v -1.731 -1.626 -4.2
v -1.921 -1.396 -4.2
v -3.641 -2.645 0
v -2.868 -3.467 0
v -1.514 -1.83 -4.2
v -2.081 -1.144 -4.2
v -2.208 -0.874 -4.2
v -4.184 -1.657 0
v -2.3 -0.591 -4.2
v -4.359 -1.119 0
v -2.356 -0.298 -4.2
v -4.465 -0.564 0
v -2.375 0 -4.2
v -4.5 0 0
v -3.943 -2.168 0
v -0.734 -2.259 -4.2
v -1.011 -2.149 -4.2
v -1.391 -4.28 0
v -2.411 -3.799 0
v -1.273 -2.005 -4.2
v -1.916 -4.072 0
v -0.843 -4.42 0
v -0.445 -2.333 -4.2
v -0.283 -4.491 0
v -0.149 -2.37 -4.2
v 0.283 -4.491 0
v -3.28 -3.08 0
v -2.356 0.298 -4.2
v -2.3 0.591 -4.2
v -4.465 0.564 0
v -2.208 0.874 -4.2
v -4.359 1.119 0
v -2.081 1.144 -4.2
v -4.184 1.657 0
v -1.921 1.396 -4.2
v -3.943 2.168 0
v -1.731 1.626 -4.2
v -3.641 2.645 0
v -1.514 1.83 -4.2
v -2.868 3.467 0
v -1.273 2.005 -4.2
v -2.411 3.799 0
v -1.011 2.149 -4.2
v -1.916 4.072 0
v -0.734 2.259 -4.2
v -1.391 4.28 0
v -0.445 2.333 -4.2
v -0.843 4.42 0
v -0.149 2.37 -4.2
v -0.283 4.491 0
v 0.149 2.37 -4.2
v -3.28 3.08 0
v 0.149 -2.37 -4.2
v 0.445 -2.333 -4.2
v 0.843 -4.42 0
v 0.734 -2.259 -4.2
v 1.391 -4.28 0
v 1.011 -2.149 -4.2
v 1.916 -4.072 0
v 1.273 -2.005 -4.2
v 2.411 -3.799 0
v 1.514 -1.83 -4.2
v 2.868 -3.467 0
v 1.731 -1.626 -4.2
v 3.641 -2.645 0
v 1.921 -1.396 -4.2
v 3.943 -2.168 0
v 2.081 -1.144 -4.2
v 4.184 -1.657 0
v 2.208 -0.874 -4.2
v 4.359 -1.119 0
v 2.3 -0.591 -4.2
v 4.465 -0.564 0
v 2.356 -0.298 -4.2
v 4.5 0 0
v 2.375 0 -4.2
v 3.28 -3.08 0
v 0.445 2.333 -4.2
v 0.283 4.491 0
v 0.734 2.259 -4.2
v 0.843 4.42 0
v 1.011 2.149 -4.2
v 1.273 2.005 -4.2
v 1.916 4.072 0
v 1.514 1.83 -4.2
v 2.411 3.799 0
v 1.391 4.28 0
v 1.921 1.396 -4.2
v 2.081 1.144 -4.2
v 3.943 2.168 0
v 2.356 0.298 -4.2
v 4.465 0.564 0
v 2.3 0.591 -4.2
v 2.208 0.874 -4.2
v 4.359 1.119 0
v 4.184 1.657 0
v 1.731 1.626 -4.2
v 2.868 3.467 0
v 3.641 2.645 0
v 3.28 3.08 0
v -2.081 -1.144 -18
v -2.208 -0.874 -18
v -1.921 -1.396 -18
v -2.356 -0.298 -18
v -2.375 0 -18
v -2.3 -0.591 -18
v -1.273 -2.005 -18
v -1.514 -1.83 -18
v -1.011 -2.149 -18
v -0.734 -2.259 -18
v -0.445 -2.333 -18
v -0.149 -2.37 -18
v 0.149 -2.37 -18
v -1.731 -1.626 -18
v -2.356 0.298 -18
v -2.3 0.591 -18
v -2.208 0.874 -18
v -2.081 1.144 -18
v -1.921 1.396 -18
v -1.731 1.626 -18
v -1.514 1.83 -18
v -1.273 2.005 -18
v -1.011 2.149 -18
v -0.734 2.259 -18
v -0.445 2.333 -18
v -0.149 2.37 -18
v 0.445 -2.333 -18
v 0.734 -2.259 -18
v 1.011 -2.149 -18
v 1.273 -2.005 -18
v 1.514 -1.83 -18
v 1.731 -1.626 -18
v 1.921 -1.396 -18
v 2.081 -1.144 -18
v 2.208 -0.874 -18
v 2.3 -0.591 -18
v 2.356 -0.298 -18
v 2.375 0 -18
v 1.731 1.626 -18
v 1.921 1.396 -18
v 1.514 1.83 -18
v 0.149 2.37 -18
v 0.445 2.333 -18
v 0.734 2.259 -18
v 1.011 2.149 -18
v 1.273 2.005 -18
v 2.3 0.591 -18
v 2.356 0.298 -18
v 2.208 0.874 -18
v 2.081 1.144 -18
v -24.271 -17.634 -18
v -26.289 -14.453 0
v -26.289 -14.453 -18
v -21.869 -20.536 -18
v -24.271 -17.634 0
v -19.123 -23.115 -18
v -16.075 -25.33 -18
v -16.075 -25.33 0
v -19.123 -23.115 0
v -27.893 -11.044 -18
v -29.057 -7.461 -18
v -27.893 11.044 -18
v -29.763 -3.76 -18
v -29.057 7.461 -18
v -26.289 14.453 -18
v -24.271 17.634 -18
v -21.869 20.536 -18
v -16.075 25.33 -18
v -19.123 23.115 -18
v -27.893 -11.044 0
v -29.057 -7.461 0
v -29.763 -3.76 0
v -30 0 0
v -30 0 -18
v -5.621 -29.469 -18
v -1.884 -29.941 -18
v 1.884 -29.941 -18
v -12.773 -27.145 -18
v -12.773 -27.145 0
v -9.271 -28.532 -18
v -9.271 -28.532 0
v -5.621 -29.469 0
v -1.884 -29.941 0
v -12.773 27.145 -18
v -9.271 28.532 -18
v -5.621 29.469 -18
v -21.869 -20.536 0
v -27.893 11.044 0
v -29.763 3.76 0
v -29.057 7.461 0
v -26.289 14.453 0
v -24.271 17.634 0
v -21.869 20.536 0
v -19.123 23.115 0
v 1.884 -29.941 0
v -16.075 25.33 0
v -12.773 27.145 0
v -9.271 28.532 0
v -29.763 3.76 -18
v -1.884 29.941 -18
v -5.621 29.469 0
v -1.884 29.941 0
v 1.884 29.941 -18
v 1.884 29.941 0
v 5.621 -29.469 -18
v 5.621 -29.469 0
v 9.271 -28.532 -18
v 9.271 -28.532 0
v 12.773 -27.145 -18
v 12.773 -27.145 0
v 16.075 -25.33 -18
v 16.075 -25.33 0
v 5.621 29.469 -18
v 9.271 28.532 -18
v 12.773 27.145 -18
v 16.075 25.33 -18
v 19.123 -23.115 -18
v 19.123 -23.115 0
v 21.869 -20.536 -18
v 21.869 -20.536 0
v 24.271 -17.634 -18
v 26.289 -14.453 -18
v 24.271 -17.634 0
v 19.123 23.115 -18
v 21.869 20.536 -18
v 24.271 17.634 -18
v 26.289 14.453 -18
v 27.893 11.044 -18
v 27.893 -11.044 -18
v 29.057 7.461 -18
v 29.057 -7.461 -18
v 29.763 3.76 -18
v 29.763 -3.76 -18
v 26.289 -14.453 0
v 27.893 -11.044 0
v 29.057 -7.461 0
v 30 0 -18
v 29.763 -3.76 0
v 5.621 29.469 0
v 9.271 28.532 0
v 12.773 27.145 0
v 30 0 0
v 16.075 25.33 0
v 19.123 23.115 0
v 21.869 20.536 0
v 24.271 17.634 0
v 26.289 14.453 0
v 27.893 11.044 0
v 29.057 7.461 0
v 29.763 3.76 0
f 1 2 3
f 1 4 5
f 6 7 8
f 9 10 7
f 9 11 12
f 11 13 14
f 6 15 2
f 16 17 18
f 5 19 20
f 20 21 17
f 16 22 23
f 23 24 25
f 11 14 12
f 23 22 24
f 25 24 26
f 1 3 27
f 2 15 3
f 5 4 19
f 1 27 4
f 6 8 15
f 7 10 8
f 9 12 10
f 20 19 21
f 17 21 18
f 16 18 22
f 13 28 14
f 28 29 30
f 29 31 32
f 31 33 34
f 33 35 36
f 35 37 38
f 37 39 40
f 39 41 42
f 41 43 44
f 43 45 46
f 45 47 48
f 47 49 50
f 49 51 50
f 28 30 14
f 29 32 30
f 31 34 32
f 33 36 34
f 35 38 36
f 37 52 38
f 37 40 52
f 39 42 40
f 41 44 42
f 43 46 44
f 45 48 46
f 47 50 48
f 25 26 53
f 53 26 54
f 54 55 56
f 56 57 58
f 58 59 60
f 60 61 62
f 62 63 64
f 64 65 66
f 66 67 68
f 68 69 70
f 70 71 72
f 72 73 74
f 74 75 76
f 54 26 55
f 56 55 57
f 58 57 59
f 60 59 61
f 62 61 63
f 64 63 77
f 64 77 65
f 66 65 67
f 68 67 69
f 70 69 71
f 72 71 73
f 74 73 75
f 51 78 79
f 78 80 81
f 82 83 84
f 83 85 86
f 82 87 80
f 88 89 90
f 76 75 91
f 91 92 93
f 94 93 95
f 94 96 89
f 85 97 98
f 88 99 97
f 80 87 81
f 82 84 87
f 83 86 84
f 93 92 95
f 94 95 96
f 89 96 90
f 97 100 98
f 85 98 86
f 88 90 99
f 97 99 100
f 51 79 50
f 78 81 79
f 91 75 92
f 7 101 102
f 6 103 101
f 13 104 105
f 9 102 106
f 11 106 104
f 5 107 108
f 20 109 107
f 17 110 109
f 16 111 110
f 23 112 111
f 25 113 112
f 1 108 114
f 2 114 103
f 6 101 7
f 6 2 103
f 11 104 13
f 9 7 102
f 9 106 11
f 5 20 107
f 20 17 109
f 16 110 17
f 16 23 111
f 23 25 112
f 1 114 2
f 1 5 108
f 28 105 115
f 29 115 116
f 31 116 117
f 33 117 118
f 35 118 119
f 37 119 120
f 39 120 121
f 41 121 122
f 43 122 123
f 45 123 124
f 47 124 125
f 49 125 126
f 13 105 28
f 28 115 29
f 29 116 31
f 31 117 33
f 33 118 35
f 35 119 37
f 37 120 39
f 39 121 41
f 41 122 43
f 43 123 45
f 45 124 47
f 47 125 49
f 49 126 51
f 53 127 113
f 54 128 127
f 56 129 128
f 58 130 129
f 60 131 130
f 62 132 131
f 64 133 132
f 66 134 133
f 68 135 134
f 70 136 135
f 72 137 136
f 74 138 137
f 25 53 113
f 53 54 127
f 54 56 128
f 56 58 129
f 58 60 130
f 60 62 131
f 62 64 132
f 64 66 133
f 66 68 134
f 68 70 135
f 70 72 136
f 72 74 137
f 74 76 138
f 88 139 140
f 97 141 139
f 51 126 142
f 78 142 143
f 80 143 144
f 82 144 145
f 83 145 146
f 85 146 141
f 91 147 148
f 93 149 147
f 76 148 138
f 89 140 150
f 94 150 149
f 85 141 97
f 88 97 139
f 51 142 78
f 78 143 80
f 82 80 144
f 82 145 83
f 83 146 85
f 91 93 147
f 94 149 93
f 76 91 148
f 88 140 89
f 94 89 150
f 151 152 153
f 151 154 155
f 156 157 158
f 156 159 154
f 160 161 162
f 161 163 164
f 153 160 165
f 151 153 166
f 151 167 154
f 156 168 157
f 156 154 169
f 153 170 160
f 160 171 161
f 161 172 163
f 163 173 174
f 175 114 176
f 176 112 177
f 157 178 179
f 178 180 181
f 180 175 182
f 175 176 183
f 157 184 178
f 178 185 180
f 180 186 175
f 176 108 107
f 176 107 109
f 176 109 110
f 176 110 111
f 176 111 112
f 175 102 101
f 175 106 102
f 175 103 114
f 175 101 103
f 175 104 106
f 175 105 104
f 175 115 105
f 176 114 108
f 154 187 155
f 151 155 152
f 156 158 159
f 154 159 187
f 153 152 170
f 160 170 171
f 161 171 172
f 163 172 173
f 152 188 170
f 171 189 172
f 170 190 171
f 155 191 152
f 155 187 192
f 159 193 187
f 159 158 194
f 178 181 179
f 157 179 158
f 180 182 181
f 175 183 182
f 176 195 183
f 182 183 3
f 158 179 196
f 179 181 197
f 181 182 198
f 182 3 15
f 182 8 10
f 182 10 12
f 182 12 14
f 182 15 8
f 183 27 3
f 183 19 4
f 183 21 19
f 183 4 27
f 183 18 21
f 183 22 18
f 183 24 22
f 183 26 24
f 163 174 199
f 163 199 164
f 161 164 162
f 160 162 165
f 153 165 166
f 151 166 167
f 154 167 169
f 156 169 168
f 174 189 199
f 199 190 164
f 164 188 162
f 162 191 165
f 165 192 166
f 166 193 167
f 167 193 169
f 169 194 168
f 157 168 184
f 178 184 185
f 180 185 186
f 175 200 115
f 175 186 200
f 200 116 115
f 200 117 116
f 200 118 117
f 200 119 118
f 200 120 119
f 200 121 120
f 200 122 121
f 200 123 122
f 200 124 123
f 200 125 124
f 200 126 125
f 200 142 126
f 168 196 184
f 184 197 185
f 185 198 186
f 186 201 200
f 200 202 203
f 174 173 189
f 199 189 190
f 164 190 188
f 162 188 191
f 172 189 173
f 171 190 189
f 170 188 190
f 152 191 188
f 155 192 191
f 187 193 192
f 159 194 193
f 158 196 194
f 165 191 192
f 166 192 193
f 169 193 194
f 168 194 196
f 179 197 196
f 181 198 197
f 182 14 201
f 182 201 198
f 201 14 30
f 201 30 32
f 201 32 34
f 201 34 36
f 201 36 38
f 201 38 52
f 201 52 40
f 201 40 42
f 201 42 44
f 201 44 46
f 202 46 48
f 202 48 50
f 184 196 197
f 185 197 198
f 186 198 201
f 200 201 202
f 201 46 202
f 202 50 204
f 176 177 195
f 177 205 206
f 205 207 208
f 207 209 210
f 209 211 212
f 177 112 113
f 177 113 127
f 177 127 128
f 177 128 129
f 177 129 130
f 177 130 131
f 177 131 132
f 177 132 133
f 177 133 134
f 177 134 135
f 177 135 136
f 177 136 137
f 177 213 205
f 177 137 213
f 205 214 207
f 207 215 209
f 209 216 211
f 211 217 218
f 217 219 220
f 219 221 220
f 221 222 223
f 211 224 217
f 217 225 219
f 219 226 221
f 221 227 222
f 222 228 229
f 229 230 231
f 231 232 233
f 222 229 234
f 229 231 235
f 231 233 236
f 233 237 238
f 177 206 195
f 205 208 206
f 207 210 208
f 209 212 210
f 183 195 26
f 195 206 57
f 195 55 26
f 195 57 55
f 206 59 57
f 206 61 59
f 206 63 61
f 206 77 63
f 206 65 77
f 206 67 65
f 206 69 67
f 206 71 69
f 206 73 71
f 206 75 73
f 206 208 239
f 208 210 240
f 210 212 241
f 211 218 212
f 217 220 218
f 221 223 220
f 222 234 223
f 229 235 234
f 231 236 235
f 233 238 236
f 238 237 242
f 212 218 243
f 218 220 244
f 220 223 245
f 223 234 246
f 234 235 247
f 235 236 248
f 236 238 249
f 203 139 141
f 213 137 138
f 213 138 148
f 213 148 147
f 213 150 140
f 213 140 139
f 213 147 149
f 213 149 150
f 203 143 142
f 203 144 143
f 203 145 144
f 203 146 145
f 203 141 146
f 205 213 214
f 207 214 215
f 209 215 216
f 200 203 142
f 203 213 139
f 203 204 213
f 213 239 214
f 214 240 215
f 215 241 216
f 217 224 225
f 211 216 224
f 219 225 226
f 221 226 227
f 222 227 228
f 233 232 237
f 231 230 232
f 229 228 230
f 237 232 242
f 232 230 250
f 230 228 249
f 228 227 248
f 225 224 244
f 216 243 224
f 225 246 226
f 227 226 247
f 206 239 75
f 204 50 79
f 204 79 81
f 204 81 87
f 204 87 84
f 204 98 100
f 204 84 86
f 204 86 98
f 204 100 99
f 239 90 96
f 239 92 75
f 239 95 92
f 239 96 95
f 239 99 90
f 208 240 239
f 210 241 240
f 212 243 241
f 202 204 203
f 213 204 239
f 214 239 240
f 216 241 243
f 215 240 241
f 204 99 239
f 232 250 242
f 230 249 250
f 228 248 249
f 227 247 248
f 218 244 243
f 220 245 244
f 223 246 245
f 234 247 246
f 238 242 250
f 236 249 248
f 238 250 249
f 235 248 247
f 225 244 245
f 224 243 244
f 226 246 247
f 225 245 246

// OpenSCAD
$fn = 50;

difference() {
	union() {
		translate(v = [0, 0, -18.0]) {
			cylinder(h = 18, r = 30.0);
		}
	}
	union() {
		translate(v = [0, 0, 0]) {
			rotate(a = [0, 0, 0]) {
				difference() {
					union() {
						translate(v = [0, 0, -21.0]) {
							cylinder(h = 21, r = 2.25);
						}
						translate(v = [0, 0, -4.2]) {
							cylinder(h = 4.2, r1 = 2.375, r2 = 4.5);
						}
						translate(v = [0, 0, -21.0]) {
							cylinder(h = 21, r = 2.375);
						}
						translate(v = [0, 0, -21.0]) {
							cylinder(h = 21, r = 2.25);
						}
					}
					union();
				}
			}
		}
	}
}
